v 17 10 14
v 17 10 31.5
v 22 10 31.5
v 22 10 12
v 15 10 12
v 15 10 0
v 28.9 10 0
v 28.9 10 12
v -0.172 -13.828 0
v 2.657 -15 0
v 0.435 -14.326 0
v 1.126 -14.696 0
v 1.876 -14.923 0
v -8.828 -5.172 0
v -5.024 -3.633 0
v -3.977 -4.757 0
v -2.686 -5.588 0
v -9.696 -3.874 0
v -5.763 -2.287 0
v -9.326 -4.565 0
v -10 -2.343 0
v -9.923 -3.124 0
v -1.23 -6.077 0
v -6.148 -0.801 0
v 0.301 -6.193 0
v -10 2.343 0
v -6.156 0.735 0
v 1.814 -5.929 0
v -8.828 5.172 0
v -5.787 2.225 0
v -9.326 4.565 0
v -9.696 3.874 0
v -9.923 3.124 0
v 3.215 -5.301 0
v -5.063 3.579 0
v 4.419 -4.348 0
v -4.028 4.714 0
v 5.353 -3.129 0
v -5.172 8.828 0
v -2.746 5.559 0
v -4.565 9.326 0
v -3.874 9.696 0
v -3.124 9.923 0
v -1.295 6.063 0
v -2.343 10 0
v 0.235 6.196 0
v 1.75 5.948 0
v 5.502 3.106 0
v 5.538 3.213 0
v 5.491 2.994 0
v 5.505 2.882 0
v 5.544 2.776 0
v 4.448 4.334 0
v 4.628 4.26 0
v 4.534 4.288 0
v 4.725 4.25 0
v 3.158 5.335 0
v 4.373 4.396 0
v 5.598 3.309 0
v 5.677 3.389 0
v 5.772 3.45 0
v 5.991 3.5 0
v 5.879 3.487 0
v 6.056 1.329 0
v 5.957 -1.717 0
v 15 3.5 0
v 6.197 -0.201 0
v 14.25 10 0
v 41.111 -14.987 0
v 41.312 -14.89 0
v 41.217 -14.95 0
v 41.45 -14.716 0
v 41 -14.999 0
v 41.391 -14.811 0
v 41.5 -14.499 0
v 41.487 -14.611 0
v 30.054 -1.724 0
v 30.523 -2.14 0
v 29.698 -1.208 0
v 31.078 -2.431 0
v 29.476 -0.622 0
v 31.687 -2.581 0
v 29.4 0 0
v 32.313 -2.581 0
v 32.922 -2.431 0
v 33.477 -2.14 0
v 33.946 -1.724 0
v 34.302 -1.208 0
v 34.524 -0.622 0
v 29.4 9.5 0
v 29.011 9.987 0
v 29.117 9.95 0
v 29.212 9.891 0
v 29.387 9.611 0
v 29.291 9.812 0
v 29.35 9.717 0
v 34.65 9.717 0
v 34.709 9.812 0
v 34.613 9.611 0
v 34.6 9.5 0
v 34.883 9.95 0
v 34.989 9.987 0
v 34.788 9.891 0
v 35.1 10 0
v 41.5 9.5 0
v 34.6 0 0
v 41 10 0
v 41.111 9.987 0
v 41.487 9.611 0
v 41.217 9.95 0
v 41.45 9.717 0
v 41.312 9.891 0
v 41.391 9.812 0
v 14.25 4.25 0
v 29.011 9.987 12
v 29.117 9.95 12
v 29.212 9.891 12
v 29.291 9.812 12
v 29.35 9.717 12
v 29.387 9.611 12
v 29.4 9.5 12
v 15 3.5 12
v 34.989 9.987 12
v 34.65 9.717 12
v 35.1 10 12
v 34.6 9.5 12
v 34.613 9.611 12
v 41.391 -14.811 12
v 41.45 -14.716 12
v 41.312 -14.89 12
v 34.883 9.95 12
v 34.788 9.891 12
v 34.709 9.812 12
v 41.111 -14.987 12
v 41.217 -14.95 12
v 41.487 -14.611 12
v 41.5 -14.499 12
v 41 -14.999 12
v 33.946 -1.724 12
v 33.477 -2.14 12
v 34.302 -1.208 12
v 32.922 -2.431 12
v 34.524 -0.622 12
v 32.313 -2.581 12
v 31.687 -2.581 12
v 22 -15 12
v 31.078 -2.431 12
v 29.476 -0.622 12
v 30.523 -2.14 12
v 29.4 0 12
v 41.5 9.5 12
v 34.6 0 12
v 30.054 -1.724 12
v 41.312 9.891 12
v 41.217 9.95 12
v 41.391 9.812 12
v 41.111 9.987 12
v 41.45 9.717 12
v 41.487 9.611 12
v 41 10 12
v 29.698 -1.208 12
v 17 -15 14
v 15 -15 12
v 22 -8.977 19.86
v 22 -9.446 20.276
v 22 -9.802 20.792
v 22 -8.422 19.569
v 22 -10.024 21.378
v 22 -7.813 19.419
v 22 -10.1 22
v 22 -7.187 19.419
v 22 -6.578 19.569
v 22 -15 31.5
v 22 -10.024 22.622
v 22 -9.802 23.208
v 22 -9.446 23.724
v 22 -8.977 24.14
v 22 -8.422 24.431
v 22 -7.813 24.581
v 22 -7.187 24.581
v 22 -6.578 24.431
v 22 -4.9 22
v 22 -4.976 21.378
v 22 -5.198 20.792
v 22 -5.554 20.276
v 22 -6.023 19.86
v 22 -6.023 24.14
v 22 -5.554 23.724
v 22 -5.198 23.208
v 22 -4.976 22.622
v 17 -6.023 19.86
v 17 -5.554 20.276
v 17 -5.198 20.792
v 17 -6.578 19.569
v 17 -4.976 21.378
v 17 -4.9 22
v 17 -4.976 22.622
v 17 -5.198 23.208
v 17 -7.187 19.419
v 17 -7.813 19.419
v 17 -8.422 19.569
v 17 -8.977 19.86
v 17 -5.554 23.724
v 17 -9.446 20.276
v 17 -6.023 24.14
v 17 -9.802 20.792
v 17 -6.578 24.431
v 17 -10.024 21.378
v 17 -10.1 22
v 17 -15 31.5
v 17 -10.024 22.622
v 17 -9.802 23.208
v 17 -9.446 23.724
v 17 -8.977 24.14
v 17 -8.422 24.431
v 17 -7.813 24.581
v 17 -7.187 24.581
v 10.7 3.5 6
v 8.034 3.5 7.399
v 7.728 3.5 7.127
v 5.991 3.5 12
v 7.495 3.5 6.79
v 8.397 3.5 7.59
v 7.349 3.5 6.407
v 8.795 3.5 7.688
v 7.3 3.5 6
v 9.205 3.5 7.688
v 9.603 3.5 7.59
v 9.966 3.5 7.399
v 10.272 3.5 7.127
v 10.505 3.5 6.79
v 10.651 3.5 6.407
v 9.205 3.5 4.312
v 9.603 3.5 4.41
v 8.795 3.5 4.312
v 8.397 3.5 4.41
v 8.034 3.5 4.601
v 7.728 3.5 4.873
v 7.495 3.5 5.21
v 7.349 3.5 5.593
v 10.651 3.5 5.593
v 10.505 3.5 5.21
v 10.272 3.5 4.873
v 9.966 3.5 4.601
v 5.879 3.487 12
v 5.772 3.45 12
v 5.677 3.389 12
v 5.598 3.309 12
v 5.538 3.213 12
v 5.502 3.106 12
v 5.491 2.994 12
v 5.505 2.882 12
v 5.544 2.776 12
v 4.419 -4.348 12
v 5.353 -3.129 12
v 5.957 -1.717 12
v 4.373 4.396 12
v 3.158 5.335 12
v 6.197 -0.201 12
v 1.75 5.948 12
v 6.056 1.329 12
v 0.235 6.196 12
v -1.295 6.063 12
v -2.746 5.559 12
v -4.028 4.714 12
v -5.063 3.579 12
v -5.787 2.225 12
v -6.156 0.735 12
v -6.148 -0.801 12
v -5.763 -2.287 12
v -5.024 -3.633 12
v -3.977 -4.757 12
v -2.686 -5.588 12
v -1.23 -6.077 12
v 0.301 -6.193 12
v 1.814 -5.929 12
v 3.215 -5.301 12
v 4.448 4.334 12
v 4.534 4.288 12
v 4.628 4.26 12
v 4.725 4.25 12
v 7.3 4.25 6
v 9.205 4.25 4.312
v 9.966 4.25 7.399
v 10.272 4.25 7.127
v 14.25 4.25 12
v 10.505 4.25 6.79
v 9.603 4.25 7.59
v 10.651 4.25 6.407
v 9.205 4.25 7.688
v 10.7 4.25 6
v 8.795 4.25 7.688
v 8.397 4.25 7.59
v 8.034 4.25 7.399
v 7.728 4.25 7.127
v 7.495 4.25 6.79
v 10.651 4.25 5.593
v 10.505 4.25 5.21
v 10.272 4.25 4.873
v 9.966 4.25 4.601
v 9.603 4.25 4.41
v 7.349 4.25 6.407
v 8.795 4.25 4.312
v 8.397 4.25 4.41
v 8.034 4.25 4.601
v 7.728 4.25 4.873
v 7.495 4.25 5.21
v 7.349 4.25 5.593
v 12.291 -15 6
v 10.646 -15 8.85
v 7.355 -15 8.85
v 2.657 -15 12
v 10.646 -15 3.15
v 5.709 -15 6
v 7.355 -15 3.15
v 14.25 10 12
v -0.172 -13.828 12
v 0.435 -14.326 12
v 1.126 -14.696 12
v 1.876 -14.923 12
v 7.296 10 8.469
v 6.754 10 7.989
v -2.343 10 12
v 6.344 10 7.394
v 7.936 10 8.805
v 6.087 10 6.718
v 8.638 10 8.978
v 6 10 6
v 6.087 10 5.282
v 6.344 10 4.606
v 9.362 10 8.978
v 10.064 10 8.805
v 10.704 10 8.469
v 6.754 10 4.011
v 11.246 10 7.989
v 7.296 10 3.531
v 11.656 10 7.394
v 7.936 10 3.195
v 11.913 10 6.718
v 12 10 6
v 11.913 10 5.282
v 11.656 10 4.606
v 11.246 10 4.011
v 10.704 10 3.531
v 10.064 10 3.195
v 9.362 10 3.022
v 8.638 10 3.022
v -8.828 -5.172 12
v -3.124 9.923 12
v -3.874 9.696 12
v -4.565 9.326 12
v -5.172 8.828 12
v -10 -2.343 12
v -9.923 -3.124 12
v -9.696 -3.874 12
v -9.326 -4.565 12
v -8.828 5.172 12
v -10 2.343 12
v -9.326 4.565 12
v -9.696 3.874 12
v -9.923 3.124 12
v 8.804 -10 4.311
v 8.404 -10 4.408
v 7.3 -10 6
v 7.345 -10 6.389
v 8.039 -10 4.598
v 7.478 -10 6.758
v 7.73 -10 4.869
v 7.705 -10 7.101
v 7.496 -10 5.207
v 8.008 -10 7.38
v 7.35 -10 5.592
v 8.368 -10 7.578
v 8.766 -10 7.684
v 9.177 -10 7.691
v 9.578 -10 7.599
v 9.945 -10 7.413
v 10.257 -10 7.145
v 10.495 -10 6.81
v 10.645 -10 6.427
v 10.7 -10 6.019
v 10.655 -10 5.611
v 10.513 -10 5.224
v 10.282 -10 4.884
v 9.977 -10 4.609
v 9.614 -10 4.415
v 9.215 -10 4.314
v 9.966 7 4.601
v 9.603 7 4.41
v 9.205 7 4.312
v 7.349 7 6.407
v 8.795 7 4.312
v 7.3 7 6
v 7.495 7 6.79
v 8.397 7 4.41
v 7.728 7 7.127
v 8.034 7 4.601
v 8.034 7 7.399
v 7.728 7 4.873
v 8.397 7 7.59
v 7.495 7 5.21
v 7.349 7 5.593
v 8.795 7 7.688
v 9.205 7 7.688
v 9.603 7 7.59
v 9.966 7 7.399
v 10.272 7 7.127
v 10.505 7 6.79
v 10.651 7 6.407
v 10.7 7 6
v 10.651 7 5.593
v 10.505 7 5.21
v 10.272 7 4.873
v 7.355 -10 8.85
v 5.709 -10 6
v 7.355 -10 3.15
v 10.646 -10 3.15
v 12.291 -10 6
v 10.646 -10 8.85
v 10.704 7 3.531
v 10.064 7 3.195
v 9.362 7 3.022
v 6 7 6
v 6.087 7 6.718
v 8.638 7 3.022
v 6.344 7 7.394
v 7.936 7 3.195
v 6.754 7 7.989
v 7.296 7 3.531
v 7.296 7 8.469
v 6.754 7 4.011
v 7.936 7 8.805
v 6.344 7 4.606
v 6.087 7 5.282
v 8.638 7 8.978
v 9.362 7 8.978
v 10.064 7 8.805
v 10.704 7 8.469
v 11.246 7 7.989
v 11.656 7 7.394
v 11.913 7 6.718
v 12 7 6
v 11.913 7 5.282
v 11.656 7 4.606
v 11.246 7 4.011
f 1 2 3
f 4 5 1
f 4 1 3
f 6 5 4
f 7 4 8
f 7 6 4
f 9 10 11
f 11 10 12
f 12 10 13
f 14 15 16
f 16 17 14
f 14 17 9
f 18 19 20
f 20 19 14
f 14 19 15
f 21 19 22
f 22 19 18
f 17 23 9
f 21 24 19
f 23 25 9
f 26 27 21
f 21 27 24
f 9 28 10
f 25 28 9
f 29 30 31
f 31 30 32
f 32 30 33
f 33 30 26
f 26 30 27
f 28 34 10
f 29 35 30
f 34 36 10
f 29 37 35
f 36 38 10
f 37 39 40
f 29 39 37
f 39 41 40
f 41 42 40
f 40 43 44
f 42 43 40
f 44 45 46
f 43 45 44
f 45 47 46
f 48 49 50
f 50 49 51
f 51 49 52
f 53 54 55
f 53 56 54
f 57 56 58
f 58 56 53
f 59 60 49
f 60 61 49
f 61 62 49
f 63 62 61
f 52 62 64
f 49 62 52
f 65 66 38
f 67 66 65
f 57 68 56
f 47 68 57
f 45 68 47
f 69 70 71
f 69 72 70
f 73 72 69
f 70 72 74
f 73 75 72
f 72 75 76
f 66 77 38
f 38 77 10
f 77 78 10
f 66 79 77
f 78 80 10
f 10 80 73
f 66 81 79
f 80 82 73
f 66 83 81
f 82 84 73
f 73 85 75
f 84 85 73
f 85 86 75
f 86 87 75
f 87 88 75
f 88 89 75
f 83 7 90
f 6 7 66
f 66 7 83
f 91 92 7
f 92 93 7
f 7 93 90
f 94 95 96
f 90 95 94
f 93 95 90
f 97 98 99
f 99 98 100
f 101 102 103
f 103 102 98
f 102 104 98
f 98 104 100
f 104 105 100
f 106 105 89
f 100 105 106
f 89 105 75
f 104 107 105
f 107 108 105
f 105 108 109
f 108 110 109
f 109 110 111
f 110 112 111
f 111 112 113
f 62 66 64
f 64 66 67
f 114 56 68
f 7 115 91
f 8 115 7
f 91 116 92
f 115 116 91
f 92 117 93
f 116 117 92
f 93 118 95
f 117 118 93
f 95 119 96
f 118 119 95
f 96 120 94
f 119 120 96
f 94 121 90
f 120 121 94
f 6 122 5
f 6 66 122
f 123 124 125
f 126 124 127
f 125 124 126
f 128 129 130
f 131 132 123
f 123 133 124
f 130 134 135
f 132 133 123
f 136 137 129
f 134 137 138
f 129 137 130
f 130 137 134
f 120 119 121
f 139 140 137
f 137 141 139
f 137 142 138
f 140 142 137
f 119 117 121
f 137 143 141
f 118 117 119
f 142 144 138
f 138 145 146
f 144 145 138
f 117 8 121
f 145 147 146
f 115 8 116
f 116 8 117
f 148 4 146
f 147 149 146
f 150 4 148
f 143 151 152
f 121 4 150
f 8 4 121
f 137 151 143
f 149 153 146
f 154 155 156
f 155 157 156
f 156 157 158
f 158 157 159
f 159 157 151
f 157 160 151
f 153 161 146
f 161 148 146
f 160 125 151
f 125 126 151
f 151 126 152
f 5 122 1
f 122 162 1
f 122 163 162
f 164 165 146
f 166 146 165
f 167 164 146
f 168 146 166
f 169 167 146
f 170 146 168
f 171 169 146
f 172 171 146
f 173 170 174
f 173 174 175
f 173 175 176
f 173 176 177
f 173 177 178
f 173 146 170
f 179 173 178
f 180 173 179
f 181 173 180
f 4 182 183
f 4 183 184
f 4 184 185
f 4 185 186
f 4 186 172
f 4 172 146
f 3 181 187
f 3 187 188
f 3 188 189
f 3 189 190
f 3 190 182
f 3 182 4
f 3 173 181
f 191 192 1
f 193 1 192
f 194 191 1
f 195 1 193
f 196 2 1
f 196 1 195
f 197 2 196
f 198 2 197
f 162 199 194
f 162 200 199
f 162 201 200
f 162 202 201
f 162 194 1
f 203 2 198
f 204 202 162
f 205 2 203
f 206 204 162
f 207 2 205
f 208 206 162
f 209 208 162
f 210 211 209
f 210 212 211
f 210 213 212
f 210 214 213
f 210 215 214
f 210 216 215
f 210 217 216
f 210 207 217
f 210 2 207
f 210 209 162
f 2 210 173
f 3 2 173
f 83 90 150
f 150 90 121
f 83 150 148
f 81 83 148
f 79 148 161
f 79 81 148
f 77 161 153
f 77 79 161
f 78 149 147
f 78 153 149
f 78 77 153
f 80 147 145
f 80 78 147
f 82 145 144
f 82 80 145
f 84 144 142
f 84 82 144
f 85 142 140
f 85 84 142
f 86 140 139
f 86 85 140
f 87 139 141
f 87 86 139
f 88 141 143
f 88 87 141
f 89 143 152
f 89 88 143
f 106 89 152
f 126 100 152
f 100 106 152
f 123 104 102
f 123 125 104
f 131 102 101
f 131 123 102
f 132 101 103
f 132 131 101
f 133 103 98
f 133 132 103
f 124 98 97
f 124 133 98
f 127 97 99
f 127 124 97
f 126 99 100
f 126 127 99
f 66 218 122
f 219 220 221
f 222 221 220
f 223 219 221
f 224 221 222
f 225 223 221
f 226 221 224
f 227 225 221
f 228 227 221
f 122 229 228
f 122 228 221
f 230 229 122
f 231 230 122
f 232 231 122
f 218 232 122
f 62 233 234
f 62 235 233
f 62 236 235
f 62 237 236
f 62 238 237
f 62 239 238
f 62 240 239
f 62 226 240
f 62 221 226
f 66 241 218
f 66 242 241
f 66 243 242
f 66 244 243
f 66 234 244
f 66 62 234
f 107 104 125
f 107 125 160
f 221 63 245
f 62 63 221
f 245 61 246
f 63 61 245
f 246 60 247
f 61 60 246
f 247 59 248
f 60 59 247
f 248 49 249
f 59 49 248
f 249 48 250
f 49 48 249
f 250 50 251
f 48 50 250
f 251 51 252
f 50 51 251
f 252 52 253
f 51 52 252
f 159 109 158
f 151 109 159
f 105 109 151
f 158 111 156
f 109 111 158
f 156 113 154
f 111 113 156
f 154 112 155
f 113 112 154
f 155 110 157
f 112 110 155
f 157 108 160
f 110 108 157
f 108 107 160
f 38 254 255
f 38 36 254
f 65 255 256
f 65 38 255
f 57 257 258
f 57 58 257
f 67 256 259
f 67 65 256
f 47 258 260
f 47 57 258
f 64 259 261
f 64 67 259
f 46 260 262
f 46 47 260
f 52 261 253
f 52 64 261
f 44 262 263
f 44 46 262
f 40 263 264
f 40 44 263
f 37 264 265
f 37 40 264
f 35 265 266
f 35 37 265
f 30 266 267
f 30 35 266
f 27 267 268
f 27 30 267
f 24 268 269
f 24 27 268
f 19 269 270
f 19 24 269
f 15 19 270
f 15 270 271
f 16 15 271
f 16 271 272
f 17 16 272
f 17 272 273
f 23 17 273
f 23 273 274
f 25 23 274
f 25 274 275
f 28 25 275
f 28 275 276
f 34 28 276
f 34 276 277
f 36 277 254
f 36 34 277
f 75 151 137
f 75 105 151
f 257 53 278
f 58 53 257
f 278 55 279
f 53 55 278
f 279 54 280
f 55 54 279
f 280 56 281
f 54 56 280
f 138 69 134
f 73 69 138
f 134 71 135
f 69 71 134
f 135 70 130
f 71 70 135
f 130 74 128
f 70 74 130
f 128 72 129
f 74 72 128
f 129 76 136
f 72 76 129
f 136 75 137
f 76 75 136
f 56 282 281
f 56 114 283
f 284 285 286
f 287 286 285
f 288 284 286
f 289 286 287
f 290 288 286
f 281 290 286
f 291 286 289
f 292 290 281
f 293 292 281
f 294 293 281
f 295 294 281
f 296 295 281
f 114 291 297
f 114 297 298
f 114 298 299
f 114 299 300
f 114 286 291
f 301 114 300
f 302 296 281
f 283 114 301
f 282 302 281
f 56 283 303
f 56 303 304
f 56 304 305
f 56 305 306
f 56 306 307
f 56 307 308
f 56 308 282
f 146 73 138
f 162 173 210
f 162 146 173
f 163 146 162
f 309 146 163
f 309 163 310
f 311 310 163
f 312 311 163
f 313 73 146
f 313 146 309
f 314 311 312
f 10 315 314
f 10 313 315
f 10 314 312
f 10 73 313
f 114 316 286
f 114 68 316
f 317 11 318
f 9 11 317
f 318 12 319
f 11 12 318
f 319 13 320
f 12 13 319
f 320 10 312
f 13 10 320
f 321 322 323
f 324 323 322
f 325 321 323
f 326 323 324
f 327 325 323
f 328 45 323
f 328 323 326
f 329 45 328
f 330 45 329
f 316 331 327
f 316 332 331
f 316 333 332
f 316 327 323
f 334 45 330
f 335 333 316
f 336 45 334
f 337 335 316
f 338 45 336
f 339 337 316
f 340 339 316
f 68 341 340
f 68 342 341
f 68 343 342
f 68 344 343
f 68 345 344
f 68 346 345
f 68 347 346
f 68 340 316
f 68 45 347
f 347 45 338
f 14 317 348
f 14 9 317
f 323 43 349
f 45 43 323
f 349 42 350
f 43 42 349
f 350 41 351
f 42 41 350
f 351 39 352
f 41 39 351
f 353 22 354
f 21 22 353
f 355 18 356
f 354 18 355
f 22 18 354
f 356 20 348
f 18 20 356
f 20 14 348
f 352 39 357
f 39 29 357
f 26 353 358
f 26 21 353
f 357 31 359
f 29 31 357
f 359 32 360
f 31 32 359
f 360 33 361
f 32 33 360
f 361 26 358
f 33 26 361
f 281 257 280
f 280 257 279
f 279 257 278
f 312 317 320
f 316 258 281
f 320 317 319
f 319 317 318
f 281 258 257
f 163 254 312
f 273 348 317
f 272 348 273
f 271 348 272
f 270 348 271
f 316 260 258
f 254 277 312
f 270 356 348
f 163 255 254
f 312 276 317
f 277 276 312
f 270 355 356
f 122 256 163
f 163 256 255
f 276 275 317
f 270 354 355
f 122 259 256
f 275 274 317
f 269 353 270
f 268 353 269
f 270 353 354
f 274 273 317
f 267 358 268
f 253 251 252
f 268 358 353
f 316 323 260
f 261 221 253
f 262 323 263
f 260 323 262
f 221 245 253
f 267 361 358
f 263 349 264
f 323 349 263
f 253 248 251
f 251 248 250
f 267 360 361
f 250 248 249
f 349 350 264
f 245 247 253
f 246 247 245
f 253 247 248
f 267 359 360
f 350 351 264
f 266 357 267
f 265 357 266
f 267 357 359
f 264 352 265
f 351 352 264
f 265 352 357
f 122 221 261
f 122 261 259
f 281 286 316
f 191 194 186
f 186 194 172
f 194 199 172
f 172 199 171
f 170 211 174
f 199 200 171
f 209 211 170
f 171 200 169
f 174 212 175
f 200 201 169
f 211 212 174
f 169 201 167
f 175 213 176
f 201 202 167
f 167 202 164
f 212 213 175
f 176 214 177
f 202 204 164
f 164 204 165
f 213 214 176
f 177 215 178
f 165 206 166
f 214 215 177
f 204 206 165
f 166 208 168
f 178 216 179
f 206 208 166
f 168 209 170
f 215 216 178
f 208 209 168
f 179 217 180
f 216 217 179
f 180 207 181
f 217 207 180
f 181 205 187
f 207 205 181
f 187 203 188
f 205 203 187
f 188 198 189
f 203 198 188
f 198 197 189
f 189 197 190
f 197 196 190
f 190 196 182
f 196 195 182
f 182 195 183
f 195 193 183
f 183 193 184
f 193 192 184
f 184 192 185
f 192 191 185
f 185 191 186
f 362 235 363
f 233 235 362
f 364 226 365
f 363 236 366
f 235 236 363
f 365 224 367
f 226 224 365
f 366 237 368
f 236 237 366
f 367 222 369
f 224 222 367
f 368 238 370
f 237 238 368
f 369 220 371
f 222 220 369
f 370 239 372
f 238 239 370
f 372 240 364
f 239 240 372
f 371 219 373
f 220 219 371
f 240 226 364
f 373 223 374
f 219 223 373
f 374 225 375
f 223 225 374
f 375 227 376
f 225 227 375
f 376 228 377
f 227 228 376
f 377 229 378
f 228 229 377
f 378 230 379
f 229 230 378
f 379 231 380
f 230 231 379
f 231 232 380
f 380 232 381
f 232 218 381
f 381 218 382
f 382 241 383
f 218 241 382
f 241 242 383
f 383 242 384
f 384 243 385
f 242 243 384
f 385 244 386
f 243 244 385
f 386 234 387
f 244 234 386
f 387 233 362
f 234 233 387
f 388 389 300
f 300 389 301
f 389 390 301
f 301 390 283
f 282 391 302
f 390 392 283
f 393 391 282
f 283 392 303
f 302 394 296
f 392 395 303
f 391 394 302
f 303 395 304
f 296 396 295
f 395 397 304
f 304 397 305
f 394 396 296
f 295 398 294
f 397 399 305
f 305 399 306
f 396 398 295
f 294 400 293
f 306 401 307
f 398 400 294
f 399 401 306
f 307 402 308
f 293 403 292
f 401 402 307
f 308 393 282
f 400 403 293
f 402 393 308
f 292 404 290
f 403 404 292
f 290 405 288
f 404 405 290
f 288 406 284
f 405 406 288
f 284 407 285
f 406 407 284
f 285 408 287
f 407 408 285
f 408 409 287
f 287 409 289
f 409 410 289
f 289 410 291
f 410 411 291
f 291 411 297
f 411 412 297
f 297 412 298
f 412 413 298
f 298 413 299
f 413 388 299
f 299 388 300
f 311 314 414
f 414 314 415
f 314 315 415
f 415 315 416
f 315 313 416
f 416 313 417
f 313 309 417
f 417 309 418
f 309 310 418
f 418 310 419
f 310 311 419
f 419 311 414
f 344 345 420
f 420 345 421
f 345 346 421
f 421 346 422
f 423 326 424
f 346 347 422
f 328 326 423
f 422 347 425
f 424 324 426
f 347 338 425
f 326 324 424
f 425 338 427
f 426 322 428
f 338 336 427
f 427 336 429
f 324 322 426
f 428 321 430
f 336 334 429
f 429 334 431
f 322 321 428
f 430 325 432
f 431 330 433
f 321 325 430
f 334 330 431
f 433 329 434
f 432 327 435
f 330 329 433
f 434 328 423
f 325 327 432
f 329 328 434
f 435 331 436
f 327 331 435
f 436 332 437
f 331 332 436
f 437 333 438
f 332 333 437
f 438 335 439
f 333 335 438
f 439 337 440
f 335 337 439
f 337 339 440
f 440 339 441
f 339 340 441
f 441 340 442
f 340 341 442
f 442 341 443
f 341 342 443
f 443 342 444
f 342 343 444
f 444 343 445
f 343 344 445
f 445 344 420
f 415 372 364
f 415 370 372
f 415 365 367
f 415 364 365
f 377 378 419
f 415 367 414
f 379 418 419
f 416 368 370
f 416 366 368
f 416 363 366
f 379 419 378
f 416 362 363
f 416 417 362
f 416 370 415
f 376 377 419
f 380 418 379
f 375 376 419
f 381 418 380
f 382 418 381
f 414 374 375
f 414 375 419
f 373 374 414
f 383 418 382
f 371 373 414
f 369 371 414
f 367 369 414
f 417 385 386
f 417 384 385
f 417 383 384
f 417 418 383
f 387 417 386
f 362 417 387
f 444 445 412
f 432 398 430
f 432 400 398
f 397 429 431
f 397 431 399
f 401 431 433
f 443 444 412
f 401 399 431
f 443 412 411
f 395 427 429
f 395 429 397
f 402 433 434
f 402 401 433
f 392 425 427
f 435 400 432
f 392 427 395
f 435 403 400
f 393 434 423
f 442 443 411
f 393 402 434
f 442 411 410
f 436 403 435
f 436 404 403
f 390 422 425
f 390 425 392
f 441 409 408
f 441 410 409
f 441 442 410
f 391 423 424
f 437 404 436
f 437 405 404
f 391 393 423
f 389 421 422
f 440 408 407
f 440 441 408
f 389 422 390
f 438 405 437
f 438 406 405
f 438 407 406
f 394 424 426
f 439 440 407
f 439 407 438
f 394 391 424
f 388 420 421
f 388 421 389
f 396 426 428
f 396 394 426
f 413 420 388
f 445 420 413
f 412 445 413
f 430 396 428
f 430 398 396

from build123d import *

# Parameters (mm, degrees)
PAD_DEPTH       = 31.5
SKETCH001_W     = 20
SKETCH001_H     = 30
SKETCH001_W_2   = 27
POCKET_DEPTH    = 19.5
SKETCH002_R     = 2.6
POCKET001_DEPTH = 24.501
SKETCH003_R     = 1.7
POCKET002_DEPTH = 25.001
SKETCH004_R     = 3
POCKET003_DEPTH = 3
POCKET004_DEPTH = 5
CHAMFER_SIZE    = 2
FILLET_R        = 0.5


with BuildPart() as part:
    # Sketch → Pad (new body)
    with BuildSketch(Plane.XY):
        with BuildLine():
            ThreePointArc((-0.171573, -13.828427), (1.126121, -14.695518), (2.656854, -15))
            Line((41.00007, -14.999422), (2.656854, -15))
            ThreePointArc((41.00007, -14.999422), (41.353579, -14.85295), (41.5, -14.499421))
            Line((41.5, 9.5), (41.5, -14.499421))
            ThreePointArc((41.5, 9.5), (41.353578, 9.853528), (41.000071, 10))
            Line((34.6, 10), (41.000071, 10))
            Line((34.6, 10), (34.6, 0))
            ThreePointArc((29.4, 0), (32, -2.6), (34.6, 0))
            Line((29.4, 0), (29.4, 10))
            Line((15, 10), (29.4, 10))
            Line((15, 3.5), (15, 10))
            Line((5.990826, 3.5), (15, 3.5))
            ThreePointArc((5.990826, 3.5), (5.56542, 3.262735), (5.54375, 2.776119))
            ThreePointArc((4.372572, 4.395522), (-5.023841, -3.633322), (5.54375, 2.776119))
            ThreePointArc((4.372572, 4.395522), (4.534461, 4.28781), (4.725198, 4.25))
            Line((14.25, 4.25), (4.725198, 4.25))
            Line((14.25, 10), (14.25, 4.25))
            Line((-2.343146, 10), (14.25, 10))
            ThreePointArc((-2.343146, 10), (-3.873879, 9.695518), (-5.171573, 8.828427))
            Line((-5.171573, 8.828427), (-8.828427, 5.171573))
            ThreePointArc((-8.828427, 5.171573), (-9.695518, 3.873879), (-10, 2.343146))
            Line((-10, -2.343146), (-10, 2.343146))
            ThreePointArc((-10, -2.343146), (-9.695518, -3.873879), (-8.828427, -5.171573))
            Line((-8.828427, -5.171573), (-0.171573, -13.828427))
        make_face()
    extrude(amount=PAD_DEPTH)

    # Sketch001 (on Face26 of Pad) → Pocket (cut)
    with BuildSketch(Plane.XY.offset(31.5)):
        with Locations((32, 0)):
            Rectangle(SKETCH001_W, SKETCH001_H)
        with Locations((3.5, 0)):
            Rectangle(SKETCH001_W_2, SKETCH001_H)
    extrude(amount=-POCKET_DEPTH, mode=Mode.SUBTRACT)

    # Sketch002 (on Face29 of Pocket) → Pocket001 (cut, through all)
    with BuildSketch(Plane(origin=(17, 0, 0), x_dir=(0, -1, 0), z_dir=(-1, 0, 0))):
        with Locations((7.5, 22)):
            Circle(SKETCH002_R)
    extrude(amount=-POCKET001_DEPTH, mode=Mode.SUBTRACT)

    # Sketch003 (on Face13 of Pocket001) → Pocket002 (cut, through all)
    with BuildSketch(Plane(origin=(0, 10, 0), x_dir=(-1, 0, 0), z_dir=(0, 1, 0))):
        with Locations((-9, 6)):
            Circle(SKETCH003_R)
    extrude(amount=-POCKET002_DEPTH, mode=Mode.SUBTRACT)

    # Sketch004 (on Face13 of Pocket002) → Pocket003 (cut)
    with BuildSketch(Plane(origin=(0, 10, 0), x_dir=(-1, 0, 0), z_dir=(0, 1, 0))):
        with Locations((-9, 6)):
            Circle(SKETCH004_R)
    extrude(amount=-POCKET003_DEPTH, mode=Mode.SUBTRACT)

    # Sketch005 (on Face21 of Pocket003) → Pocket004 (cut)
    with BuildSketch(Plane(origin=(0.000226, -15.00004, 0), x_dir=(1, 1.5e-05, 0), z_dir=(1.5e-05, -1, 0))):
        Polygon((10.645448, 3.15), (12.290897, 6), (10.645448, 8.85), (7.354552, 8.85), (5.709103, 6), (7.354552, 3.15), align=None)
    extrude(amount=-POCKET004_DEPTH, mode=Mode.SUBTRACT)

    # Chamfer
    chamfer_edges = [part.edges().sort_by_distance(p)[0] for p in [
        (17, -2.499892, 12),
    ]]
    chamfer(chamfer_edges, length=CHAMFER_SIZE)

    # Fillet
    fillet_edges = [part.edges().sort_by_distance(p)[0] for p in [
        (34.6, 10, 6),
        (29.4, 10, 6),
    ]]
    fillet(fillet_edges, radius=FILLET_R)


solid = part.part
